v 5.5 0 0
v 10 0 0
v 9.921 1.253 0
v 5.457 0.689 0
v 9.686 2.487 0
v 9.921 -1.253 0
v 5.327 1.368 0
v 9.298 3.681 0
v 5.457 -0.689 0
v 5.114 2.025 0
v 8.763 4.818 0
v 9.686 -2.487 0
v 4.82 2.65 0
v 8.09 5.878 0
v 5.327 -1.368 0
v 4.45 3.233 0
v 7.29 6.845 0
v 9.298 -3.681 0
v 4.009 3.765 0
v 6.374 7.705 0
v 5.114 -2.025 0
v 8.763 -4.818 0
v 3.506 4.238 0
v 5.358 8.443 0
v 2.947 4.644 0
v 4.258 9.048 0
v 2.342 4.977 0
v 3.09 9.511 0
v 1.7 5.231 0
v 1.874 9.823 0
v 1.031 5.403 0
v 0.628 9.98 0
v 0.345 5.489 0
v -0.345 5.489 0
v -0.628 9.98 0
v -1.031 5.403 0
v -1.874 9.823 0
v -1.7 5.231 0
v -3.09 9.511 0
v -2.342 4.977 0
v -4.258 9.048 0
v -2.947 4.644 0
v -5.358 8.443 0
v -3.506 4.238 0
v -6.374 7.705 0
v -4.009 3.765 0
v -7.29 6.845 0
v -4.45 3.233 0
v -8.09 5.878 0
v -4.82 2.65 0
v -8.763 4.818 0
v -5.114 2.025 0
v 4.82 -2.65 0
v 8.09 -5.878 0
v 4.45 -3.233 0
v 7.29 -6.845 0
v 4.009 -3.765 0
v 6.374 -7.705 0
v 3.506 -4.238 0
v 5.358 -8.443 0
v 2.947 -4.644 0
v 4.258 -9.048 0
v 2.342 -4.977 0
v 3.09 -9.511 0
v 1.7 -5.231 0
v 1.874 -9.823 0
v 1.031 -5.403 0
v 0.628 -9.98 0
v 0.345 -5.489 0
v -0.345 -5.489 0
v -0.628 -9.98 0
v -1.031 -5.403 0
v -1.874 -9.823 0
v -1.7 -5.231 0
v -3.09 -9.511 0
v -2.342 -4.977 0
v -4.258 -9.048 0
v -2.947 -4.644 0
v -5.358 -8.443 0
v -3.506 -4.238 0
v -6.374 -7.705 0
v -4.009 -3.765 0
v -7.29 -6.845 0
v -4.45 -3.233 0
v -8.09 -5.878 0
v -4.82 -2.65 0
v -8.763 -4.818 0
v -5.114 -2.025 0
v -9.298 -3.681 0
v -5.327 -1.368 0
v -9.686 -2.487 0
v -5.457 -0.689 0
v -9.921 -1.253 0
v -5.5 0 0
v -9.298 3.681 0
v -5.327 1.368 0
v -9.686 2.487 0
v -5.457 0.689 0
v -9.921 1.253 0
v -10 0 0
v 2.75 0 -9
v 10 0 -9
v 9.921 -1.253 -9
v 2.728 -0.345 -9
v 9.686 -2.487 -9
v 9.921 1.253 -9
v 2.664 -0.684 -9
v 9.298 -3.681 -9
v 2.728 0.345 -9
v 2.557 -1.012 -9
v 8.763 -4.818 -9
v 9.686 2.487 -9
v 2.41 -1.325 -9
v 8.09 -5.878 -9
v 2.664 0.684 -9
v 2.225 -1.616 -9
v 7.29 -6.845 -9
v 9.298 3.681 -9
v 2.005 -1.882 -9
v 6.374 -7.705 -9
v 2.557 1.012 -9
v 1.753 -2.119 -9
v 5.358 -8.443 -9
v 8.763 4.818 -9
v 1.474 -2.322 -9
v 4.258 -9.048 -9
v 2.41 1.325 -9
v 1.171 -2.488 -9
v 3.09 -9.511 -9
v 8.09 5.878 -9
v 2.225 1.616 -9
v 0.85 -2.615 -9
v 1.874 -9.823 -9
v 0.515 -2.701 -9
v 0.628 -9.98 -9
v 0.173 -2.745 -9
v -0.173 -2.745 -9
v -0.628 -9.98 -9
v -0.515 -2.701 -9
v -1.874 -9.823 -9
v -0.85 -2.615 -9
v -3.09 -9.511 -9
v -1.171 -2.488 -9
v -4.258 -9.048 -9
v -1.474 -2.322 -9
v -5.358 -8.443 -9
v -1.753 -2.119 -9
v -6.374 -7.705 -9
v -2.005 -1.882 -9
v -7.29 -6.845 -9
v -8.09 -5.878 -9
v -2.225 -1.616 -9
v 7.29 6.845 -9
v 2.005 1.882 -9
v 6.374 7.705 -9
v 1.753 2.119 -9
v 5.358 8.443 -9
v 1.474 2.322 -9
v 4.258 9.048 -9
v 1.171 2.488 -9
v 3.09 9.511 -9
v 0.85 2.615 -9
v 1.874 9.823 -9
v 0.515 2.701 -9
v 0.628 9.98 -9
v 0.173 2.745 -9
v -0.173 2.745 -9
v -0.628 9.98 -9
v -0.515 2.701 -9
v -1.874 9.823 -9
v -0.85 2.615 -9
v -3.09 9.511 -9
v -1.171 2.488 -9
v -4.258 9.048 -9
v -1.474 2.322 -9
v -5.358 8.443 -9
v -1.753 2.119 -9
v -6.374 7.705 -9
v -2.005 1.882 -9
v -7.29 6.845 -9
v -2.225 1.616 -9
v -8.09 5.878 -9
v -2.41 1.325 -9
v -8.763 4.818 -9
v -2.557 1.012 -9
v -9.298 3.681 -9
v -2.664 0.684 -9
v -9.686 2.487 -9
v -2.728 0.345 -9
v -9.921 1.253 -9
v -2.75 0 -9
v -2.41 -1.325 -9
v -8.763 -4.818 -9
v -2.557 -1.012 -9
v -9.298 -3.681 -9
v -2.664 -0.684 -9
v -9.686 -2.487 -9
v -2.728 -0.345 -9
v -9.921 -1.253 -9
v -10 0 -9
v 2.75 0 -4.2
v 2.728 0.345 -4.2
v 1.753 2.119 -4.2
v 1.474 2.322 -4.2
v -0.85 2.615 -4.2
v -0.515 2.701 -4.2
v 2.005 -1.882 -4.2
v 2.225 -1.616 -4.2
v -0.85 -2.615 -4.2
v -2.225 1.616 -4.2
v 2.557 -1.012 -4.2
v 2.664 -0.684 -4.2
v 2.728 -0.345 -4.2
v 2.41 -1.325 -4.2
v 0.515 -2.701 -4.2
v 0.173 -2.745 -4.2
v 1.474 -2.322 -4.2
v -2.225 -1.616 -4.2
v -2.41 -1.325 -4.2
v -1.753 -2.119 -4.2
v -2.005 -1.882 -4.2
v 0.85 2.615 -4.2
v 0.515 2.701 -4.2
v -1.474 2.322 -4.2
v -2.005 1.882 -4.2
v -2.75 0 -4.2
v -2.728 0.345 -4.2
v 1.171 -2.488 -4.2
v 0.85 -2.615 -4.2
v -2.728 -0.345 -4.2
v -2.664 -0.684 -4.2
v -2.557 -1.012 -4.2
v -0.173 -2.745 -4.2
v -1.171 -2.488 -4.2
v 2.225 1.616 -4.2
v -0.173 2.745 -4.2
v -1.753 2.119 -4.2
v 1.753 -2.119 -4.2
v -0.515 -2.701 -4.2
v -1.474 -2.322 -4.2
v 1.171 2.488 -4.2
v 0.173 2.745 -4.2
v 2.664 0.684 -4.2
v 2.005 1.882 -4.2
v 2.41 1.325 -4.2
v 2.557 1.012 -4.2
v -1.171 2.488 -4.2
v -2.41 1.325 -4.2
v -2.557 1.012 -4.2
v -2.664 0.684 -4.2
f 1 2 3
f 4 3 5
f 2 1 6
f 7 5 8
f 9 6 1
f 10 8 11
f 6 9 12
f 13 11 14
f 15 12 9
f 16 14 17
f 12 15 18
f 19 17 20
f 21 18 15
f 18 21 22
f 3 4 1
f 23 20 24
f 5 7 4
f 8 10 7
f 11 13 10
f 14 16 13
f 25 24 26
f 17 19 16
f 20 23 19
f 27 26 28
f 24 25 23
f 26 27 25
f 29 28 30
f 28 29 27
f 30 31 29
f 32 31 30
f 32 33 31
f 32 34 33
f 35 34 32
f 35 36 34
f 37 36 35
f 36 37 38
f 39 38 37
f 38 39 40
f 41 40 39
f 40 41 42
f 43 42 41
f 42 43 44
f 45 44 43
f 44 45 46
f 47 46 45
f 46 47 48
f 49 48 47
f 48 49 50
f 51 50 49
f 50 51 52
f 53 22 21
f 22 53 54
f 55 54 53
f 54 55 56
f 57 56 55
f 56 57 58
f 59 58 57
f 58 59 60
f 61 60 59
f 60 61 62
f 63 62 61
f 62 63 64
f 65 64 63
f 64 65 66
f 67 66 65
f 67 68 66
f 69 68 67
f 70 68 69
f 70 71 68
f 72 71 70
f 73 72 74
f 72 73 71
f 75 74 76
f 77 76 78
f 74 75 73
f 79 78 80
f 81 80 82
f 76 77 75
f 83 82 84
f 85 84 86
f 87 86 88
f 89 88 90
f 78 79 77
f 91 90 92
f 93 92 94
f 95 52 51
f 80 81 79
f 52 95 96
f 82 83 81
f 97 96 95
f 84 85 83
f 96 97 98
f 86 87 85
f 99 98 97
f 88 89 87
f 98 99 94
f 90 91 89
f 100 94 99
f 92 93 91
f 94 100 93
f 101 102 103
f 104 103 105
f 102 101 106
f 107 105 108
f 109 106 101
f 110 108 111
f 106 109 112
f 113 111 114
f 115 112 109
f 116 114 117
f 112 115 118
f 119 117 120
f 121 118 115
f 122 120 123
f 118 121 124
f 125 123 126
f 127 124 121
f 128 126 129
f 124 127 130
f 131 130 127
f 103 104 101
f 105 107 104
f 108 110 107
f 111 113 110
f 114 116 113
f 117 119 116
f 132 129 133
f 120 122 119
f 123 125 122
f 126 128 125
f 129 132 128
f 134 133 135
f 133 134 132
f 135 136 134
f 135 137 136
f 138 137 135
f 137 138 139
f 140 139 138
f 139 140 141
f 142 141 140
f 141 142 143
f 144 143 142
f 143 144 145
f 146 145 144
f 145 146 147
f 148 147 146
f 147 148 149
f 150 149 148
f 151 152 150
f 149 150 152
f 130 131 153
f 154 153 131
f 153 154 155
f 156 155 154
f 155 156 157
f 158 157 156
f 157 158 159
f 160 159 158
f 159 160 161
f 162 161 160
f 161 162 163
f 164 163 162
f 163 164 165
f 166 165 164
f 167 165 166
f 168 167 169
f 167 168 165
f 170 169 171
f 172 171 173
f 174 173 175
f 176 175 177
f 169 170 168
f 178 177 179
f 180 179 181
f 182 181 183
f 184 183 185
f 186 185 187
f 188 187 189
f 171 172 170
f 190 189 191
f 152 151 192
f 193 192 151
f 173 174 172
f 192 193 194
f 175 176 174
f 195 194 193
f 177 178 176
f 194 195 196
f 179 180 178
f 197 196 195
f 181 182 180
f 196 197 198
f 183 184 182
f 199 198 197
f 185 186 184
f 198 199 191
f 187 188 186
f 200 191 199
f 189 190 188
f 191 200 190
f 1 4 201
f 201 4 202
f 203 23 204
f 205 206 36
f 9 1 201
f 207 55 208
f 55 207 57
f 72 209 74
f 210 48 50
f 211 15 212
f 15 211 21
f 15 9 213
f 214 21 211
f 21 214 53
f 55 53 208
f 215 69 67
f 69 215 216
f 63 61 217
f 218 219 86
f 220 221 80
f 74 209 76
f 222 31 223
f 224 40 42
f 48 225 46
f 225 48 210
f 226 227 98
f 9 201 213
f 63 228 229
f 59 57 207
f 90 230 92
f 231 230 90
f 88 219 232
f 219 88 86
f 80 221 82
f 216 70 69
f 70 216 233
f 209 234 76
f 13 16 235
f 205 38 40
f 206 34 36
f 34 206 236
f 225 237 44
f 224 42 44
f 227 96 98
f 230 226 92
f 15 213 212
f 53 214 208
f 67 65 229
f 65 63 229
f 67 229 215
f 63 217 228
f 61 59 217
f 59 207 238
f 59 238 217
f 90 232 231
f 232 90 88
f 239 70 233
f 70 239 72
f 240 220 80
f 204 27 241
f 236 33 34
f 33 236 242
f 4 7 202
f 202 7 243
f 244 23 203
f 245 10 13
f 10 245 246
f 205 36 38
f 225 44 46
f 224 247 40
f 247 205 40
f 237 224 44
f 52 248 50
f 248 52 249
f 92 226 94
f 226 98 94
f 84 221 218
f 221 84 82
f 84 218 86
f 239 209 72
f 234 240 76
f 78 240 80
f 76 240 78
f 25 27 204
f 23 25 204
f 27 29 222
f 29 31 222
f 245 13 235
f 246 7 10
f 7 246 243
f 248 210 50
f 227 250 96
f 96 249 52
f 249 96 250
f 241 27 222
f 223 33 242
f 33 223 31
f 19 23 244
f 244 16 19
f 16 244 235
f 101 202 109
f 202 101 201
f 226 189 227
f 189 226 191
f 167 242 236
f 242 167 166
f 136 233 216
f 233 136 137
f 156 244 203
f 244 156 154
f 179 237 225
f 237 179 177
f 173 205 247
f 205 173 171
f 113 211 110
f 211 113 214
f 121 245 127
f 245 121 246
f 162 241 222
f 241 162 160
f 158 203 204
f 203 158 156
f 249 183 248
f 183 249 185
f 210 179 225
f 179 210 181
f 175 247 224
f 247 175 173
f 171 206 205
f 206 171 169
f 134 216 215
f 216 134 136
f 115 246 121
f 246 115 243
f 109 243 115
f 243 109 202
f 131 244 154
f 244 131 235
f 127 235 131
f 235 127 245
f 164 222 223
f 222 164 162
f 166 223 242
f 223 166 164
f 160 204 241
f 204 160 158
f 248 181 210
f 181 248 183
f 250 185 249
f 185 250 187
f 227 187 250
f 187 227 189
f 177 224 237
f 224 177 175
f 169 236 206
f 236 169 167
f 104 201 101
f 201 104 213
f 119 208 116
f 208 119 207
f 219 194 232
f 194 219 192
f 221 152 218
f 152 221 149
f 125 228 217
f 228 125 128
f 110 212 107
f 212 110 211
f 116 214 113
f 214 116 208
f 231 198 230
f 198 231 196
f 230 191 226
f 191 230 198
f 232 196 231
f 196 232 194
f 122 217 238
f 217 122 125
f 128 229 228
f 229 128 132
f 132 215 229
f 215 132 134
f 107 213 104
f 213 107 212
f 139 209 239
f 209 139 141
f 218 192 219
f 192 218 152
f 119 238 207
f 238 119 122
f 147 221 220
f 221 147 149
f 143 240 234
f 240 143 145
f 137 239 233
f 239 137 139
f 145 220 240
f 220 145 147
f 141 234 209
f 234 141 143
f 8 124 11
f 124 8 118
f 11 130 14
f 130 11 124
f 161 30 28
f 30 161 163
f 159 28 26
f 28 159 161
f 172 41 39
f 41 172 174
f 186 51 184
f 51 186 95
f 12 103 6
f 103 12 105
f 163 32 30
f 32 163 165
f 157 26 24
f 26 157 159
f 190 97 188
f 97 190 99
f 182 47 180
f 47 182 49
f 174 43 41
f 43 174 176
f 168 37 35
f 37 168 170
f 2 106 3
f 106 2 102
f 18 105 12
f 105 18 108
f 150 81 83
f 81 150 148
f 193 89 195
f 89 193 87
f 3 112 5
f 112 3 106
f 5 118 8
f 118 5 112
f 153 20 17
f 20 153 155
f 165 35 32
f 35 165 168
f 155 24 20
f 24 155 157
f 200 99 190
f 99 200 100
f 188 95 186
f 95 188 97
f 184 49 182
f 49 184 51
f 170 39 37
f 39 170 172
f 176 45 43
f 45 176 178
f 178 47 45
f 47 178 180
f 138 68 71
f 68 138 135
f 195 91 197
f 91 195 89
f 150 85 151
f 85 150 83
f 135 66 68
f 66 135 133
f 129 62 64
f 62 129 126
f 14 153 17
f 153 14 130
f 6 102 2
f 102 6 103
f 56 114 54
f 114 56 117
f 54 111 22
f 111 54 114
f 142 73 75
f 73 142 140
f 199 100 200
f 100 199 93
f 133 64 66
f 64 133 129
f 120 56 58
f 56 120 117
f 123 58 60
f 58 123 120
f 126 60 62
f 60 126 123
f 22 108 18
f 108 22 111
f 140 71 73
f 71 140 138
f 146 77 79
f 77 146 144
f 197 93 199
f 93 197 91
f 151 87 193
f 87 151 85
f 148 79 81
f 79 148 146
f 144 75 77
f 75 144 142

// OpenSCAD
$fn = 50;


difference() {
	union() {
		translate(v = [0, 0, -9.0000000000]) {
			cylinder(h = 9, r = 10.0000000000);
		}
		cylinder(h = 0, r = 16.0000000000);
	}
	union() {
		translate(v = [0, 0, 0]) {
			rotate(a = [0, 0, 0]) {
				difference() {
					union() {
						#translate(v = [0, 0, -9.0000000000]) {
							cylinder(h = 9, r = 2.2500000000);
						}
						#translate(v = [0, 0, -4.2000000000]) {
							cylinder(h = 4.2000000000, r = 10.0000000000, r1 = 2.7500000000, r2 = 5.5000000000);
						}
						#translate(v = [0, 0, -9.0000000000]) {
							cylinder(h = 9, r = 2.7500000000);
						}
						#translate(v = [0, 0, -9.0000000000]) {
							cylinder(h = 9, r = 2.2500000000);
						}
					}
					union();
				}
			}
		}
	}
}
